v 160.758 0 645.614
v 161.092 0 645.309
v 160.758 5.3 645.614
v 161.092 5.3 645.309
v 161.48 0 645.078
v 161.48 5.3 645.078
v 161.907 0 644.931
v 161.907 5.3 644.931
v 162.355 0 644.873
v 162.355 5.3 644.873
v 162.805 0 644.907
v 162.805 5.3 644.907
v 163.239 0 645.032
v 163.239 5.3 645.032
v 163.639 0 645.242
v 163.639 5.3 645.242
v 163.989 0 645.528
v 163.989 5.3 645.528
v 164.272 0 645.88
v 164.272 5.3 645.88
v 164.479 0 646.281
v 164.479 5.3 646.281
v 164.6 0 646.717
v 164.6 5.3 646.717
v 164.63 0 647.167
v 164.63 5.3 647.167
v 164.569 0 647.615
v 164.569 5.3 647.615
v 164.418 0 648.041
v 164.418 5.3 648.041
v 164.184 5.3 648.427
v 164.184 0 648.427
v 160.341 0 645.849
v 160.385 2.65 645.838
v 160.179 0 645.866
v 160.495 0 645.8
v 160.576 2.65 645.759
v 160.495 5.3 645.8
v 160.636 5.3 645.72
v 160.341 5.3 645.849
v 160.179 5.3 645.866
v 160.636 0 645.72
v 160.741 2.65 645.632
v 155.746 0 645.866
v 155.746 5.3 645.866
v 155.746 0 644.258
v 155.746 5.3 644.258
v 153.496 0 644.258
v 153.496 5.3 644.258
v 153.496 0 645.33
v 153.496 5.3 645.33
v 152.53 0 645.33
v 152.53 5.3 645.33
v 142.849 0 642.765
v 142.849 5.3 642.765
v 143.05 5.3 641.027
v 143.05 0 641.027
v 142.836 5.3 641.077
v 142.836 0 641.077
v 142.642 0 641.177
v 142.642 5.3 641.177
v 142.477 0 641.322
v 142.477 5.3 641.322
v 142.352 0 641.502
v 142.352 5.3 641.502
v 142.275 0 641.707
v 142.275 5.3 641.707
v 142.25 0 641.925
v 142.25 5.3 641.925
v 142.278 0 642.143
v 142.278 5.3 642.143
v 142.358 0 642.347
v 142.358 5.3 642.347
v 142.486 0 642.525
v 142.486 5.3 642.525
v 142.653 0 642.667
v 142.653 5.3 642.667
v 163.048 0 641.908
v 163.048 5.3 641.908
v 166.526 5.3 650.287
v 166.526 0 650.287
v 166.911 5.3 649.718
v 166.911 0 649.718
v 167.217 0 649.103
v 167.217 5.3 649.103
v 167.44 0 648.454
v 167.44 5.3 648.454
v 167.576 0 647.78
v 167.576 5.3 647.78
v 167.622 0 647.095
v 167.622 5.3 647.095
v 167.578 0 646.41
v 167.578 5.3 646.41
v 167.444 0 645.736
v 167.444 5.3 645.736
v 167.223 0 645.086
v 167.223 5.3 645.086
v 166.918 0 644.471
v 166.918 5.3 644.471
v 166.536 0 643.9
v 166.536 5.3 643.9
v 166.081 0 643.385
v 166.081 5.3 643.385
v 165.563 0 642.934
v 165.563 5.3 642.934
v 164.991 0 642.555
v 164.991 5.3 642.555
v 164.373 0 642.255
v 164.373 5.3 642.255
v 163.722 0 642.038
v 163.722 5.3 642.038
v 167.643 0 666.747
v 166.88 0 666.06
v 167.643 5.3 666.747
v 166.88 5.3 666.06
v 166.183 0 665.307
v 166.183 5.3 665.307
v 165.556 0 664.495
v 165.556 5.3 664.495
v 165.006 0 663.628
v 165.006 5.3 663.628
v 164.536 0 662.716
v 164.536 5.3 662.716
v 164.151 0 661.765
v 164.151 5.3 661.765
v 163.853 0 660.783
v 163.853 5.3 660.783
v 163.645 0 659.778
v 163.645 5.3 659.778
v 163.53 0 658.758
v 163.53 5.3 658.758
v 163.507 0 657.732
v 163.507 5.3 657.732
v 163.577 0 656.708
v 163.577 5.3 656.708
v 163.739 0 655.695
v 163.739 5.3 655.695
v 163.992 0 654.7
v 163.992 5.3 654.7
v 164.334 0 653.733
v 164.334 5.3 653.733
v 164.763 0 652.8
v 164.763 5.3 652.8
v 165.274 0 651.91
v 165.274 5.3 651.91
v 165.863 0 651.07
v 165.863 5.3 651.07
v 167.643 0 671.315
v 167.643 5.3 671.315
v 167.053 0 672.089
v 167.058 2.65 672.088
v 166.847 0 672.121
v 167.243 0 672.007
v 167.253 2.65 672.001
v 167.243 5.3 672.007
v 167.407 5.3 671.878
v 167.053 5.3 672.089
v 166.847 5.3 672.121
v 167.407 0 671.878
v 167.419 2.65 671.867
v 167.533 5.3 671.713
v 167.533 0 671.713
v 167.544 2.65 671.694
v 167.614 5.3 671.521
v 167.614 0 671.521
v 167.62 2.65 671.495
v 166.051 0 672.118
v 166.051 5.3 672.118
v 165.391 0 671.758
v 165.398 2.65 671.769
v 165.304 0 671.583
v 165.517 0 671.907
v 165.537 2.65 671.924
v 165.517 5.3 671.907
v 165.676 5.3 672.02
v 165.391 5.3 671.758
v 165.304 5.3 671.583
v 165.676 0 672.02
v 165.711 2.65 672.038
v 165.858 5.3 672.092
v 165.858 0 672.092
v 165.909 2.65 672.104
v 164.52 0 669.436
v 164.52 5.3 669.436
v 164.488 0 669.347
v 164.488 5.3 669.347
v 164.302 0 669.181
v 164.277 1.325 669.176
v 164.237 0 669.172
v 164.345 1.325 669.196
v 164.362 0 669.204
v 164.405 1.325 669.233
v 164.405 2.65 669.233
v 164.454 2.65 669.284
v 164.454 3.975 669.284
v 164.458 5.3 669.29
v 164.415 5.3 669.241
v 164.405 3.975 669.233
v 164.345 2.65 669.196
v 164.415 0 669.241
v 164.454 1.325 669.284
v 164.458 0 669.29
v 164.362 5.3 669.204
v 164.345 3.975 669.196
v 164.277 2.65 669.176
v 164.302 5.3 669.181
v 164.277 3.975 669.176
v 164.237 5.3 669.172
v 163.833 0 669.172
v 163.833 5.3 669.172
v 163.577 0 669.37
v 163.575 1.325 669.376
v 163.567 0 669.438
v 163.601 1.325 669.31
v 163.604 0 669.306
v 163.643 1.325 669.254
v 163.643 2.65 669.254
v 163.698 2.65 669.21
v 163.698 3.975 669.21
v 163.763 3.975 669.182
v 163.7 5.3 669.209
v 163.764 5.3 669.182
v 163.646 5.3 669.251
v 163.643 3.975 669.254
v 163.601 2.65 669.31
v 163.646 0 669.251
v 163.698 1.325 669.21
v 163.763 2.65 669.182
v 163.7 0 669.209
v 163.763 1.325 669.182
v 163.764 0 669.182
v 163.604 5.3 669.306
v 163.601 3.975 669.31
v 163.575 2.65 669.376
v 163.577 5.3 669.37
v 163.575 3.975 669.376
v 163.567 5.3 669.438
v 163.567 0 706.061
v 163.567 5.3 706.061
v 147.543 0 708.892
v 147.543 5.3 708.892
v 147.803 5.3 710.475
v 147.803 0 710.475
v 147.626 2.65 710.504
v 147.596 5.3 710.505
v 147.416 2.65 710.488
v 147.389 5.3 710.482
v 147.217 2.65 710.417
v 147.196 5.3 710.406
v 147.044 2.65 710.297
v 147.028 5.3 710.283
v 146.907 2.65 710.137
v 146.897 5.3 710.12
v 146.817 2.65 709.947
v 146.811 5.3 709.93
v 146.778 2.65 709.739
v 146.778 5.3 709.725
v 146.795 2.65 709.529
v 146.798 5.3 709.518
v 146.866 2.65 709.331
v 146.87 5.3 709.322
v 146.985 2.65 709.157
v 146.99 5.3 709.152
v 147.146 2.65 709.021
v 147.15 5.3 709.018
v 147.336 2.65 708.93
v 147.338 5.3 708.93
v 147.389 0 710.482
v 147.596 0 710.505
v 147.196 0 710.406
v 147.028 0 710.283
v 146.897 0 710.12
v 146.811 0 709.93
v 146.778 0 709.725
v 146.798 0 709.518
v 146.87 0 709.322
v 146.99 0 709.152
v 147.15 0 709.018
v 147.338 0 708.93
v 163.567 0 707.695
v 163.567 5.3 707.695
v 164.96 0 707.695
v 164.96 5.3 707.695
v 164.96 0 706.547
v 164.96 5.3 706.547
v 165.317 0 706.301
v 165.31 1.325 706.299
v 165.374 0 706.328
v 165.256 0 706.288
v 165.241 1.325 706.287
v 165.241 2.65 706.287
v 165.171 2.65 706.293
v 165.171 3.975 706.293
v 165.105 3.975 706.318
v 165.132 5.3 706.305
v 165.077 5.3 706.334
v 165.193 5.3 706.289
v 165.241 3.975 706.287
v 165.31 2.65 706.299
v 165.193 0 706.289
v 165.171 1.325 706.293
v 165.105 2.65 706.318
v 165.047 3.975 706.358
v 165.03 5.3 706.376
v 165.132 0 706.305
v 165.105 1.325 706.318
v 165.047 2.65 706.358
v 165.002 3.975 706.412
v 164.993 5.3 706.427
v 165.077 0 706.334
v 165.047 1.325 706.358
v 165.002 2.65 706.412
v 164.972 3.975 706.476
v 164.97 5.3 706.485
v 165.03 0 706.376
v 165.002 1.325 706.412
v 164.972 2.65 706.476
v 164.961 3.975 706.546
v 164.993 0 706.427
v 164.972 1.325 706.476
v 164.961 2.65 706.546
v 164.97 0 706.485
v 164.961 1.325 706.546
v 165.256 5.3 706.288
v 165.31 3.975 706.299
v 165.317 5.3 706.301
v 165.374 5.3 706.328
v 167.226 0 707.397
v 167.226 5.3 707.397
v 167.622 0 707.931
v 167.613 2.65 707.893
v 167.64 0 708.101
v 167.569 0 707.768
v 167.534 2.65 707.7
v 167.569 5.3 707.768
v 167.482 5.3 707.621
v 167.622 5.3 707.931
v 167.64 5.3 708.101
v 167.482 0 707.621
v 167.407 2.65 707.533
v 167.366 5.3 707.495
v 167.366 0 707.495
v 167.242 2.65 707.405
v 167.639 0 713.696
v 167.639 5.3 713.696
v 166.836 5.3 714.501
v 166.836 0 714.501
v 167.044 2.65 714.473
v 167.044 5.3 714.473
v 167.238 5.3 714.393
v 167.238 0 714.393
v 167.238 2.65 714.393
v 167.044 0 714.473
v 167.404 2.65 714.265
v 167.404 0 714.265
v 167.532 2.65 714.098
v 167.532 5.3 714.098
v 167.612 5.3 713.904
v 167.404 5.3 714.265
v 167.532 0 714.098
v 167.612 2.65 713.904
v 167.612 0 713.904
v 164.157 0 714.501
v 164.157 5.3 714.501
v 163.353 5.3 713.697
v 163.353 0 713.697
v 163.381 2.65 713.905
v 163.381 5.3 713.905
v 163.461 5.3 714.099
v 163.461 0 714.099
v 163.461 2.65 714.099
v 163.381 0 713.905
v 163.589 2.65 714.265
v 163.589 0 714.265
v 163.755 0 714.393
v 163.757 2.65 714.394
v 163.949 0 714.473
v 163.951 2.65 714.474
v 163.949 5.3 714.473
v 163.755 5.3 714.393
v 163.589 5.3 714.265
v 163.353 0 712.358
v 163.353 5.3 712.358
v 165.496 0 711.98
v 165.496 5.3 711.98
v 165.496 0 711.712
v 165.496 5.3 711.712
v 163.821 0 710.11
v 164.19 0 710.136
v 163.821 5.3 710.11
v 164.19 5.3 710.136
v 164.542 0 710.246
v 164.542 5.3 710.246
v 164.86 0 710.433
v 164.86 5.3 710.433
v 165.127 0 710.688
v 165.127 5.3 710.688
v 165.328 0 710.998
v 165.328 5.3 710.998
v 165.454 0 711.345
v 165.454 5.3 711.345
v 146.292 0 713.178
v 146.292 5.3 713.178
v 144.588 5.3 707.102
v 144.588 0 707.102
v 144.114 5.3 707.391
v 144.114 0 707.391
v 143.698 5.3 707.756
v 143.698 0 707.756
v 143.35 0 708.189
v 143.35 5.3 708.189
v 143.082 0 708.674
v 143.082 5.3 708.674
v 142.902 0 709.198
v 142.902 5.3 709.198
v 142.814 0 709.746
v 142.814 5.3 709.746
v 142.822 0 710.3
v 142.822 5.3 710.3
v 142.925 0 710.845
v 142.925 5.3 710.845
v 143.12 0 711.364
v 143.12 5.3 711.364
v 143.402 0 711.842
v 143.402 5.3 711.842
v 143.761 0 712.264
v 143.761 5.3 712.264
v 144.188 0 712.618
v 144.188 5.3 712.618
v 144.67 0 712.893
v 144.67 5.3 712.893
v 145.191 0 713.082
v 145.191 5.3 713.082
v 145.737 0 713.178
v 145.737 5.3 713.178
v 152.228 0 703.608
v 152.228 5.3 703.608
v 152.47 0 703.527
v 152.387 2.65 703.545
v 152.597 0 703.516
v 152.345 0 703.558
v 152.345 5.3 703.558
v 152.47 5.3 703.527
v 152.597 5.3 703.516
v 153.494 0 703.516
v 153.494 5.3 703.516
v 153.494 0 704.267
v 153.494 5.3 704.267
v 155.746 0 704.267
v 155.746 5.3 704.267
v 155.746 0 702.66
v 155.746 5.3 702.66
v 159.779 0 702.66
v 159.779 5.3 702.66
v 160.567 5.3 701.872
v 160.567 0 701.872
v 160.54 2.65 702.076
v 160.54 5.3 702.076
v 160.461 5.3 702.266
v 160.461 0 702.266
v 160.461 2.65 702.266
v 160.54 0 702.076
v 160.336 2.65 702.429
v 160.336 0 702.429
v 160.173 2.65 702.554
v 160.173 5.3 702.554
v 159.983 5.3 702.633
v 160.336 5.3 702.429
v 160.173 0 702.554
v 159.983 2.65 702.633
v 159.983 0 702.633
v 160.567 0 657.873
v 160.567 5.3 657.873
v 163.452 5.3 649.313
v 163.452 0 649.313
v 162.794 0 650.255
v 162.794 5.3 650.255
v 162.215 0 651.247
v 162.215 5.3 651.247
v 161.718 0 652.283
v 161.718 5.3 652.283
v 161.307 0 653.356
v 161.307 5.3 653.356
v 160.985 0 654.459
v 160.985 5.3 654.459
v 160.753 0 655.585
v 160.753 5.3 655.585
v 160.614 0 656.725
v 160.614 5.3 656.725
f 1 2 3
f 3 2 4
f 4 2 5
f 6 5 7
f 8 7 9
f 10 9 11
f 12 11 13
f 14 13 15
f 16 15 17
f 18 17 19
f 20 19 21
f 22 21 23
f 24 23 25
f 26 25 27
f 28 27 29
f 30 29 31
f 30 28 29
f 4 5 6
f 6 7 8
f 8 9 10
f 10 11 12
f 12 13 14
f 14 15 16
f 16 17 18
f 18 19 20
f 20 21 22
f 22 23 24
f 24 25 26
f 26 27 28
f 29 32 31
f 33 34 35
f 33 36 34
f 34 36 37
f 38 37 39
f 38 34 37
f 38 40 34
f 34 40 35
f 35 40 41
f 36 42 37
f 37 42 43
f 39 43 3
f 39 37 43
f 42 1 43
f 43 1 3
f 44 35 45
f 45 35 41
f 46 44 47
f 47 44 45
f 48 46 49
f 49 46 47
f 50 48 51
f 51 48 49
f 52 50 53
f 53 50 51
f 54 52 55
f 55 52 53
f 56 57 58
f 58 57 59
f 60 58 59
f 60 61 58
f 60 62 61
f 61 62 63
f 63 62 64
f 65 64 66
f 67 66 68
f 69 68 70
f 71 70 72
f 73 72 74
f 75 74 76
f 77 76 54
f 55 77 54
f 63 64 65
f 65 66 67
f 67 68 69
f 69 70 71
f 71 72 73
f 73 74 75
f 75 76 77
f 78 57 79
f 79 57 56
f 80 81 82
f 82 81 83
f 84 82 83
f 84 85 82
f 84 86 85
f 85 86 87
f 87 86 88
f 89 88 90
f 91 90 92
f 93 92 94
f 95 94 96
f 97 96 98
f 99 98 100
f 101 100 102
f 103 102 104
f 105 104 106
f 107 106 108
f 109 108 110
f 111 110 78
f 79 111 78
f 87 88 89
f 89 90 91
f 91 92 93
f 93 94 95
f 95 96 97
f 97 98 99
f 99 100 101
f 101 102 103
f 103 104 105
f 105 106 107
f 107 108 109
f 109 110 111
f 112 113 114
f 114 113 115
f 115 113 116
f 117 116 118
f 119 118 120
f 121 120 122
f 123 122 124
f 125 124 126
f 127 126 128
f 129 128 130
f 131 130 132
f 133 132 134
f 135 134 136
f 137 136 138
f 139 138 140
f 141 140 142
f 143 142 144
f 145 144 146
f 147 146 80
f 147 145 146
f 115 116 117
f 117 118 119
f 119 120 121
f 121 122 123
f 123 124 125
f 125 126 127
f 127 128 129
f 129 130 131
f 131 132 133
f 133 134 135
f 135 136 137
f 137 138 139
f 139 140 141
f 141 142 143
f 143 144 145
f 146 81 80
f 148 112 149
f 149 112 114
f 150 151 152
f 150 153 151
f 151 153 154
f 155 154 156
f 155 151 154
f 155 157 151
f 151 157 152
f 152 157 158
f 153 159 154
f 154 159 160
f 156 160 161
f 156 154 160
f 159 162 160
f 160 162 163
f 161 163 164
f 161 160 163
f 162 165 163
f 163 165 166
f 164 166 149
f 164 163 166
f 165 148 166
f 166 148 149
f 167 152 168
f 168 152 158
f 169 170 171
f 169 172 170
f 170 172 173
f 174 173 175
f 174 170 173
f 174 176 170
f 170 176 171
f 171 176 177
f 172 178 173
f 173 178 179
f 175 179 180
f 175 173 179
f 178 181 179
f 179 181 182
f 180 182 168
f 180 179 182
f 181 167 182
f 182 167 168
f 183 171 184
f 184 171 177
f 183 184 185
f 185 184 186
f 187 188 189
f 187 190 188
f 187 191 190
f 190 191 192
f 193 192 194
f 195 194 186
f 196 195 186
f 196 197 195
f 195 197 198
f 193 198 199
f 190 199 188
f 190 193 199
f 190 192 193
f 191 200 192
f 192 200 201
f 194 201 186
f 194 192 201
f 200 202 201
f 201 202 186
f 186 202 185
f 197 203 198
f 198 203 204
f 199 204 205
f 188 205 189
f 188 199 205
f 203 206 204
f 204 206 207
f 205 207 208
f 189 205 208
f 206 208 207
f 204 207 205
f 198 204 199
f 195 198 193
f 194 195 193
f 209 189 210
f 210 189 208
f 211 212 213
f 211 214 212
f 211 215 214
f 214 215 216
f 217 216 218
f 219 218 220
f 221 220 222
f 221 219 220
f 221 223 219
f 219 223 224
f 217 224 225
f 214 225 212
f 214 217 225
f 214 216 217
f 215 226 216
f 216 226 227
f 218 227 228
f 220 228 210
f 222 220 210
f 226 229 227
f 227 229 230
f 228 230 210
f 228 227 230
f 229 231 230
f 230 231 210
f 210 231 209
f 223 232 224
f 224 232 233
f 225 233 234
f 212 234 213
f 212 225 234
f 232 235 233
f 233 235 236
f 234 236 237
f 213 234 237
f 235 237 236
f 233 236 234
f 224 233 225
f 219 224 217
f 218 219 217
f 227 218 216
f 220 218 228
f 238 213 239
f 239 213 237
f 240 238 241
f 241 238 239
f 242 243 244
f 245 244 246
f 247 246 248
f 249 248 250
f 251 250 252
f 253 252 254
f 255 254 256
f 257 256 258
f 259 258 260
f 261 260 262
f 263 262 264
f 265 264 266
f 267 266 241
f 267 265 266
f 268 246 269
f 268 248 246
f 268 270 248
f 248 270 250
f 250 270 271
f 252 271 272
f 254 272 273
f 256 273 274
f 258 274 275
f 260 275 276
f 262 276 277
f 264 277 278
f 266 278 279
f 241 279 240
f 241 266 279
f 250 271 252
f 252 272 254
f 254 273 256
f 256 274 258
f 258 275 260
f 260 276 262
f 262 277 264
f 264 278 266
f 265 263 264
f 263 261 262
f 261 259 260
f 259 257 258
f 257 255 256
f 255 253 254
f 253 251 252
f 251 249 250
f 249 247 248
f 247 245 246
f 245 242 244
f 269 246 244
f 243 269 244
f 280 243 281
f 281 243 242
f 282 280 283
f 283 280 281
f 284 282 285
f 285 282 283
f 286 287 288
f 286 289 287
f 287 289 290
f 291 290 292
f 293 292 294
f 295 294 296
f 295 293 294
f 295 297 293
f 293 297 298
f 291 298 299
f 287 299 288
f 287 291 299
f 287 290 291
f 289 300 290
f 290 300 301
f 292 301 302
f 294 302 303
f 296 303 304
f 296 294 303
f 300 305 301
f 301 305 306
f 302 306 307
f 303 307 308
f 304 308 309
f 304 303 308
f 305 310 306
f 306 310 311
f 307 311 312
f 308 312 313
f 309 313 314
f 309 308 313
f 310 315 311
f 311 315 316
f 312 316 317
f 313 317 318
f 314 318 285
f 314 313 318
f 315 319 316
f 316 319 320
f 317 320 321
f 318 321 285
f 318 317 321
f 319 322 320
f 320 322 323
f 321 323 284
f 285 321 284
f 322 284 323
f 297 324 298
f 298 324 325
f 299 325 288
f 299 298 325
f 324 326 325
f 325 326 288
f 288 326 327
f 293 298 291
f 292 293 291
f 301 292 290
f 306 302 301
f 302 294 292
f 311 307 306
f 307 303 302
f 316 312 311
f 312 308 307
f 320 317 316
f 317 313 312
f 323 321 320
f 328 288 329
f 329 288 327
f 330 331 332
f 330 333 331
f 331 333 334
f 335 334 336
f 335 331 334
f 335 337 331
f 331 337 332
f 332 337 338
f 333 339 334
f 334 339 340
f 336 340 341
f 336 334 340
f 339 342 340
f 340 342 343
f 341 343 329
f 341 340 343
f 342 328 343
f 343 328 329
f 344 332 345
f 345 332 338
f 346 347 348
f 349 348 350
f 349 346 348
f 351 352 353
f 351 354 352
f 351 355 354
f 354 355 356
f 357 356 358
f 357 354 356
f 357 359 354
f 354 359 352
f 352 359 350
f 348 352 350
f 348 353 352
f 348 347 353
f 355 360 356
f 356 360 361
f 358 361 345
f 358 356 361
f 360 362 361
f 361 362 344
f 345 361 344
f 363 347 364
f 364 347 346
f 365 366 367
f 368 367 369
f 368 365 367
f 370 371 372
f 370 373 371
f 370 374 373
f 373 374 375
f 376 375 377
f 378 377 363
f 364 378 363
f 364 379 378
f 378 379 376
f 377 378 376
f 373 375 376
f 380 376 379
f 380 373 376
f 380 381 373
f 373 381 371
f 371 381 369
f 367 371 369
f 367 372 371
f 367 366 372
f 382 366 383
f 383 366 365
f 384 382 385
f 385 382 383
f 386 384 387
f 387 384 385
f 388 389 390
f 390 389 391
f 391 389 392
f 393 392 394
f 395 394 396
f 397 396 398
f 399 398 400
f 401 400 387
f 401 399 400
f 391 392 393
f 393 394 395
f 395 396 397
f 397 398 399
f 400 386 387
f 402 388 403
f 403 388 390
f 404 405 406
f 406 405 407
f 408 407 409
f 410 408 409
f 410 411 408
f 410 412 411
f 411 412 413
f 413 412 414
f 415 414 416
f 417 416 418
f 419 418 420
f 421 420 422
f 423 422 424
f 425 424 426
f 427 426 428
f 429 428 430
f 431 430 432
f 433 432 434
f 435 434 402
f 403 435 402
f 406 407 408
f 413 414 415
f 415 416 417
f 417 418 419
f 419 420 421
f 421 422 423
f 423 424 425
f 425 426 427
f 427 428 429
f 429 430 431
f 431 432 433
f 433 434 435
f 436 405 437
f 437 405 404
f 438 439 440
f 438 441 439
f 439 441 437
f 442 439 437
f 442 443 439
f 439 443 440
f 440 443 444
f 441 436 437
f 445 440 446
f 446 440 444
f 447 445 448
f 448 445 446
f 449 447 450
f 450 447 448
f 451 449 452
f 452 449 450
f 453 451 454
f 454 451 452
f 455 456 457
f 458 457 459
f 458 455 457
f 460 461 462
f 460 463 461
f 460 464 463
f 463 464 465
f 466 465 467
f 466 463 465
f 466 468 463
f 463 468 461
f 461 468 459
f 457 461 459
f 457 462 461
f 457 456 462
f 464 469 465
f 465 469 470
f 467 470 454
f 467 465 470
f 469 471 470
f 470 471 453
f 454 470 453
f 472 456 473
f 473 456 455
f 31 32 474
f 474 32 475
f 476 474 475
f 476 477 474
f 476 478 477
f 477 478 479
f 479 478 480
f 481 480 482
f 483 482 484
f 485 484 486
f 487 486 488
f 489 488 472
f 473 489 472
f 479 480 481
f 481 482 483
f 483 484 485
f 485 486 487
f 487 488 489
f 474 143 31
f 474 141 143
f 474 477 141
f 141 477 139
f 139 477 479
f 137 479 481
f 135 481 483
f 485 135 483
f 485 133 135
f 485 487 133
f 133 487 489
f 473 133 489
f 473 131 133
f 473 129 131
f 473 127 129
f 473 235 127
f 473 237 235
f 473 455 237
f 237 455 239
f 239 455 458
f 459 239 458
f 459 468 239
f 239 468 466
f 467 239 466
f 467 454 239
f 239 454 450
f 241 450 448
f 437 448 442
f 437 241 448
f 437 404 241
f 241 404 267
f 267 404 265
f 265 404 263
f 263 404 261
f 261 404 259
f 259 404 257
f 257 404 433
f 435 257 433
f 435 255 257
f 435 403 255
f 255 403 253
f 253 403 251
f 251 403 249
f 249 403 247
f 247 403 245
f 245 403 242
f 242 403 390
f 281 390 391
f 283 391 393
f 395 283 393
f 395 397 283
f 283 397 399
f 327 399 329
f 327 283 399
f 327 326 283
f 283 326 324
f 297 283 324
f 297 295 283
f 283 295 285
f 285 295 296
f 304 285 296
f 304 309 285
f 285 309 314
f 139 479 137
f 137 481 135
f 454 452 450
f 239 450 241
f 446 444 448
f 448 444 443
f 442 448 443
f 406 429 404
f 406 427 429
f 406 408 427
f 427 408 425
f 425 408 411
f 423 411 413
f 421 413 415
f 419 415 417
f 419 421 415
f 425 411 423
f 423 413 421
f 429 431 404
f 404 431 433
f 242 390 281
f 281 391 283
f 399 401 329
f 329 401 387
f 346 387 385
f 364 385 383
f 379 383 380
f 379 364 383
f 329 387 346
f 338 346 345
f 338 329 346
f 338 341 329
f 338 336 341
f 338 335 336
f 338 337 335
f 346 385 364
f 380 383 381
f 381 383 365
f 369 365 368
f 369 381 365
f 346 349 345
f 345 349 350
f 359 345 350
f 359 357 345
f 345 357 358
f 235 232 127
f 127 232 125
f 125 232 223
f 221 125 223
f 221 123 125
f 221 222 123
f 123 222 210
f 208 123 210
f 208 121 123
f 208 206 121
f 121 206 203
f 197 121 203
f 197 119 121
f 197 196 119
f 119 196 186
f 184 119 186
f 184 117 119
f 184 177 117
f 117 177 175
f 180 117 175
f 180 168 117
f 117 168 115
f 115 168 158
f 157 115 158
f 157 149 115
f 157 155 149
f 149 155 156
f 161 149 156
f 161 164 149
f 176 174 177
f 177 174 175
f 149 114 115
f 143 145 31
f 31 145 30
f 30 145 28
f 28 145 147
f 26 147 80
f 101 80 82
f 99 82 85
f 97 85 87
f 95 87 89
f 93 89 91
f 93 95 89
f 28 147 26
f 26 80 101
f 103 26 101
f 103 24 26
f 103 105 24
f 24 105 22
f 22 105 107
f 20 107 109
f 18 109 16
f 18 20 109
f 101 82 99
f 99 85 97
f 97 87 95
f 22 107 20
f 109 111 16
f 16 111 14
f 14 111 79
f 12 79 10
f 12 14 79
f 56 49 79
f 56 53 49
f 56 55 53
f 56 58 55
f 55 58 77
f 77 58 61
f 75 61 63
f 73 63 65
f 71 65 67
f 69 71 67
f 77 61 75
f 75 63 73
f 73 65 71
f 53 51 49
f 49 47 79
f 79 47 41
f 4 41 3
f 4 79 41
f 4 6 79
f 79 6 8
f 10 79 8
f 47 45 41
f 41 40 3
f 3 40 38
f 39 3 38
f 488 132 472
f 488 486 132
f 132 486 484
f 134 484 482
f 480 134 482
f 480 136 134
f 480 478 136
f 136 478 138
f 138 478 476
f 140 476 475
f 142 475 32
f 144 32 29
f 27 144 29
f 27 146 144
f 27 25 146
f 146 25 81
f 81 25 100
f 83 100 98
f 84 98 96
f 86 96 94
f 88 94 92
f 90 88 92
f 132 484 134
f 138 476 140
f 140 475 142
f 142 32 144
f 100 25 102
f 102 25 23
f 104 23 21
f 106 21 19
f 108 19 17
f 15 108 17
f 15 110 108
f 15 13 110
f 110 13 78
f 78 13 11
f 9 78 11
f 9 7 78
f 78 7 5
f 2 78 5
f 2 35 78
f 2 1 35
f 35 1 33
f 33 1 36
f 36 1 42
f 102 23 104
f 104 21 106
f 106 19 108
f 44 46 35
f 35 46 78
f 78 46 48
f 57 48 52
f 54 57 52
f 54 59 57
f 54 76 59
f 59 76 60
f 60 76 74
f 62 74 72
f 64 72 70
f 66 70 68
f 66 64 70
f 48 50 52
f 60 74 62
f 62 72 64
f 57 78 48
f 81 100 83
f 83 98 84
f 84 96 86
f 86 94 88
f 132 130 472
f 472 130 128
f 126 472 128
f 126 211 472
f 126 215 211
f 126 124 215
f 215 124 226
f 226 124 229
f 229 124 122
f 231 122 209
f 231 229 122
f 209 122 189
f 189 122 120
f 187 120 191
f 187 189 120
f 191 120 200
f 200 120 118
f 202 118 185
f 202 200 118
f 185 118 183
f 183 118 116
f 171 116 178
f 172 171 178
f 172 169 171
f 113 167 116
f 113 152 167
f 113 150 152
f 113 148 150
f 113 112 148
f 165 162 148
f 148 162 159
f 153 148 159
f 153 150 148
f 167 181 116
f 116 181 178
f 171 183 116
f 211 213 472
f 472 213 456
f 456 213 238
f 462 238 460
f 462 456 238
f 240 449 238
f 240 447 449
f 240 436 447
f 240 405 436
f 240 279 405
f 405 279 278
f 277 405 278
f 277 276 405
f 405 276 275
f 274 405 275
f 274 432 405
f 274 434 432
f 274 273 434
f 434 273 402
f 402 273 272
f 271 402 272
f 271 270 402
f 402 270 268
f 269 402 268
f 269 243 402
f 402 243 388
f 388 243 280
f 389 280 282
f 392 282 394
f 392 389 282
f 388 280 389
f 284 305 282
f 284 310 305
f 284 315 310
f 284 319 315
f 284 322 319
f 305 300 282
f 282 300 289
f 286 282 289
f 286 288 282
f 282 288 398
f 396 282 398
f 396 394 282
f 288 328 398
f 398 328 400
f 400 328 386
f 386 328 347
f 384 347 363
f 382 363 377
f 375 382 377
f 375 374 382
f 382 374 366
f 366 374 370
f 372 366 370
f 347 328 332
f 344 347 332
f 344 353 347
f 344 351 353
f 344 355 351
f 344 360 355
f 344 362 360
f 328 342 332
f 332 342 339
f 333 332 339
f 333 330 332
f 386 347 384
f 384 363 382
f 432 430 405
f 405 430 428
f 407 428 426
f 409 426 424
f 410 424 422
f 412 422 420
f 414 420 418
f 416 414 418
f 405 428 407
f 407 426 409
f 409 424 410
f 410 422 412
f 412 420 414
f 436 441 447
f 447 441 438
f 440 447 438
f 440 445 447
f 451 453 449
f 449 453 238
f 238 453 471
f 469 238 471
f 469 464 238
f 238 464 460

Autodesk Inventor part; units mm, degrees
ref_plane "YZ Plane" through (0, 0, 0) normal (1, 0, 0) x (0, 1, 0)
ref_plane "XZ Plane" through (0, 0, 0) normal (0, 1, 0) x (-1, 0, 0)
ref_plane "XY Plane" through (0, 0, 0) normal (0, 0, 1) x (1, 0, 0)
sketch "Sketch1" plane through (0, 0, 0) normal (0, 1, 0) x (-1, 0, 0)
  arc A0 (-159.7794, 702.6597) -> (-160.5669, 701.8721) centre (-159.7794, 701.8721) ccw
  line L0 (-159.7794, 702.6597) -> (-155.7462, 702.6597)
  line L1 (-155.7462, 702.6597) -> (-155.7462, 704.2667)
  line L2 (-155.7462, 704.2667) -> (-153.4941, 704.2667)
  line L3 (-153.4941, 704.2667) -> (-153.4941, 703.5159)
  line L4 (-153.4941, 703.5159) -> (-152.5972, 703.5159)
  arc A1 (-164.1836, 648.4268) -> (-160.5669, 657.8731) centre (-174.7114, 657.8731) ccw
  line L5 (-160.5669, 657.8731) -> (-160.5669, 701.8721)
  arc A2 (-160.1794, 645.8656) -> (-160.7583, 645.6139) centre (-160.1783, 645.0714) ccw
  arc A3 (-164.1836, 648.4268) -> (-160.7583, 645.6139) centre (-162.4137, 647.0901) ccw
  line L6 (-160.1794, 645.8656) -> (-155.7462, 645.8656)
  line L7 (-155.7462, 645.8656) -> (-155.7462, 644.2582)
  line L8 (-155.7462, 644.2582) -> (-153.4959, 644.2582)
  line L9 (-153.4959, 644.2582) -> (-153.4959, 645.3298)
  line L10 (-153.4959, 645.3298) -> (-152.5301, 645.3298)
  line L11 (-152.5301, 645.3298) -> (-142.8493, 642.7649)
  arc A4 (-143.0499, 641.0266) -> (-142.8493, 642.7649) centre (-143.1468, 641.9185) ccw
  line L12 (-163.0475, 641.9081) -> (-143.0499, 641.0266)
  arc A5 (-166.5264, 650.2868) -> (-163.0475, 641.9081) centre (-162.4021, 647.0877) ccw
  arc A6 (-166.5264, 650.2868) -> (-167.6429, 666.7468) centre (-174.8334, 657.9912) ccw
  line L13 (-167.6429, 666.7468) -> (-167.6429, 671.3153)
  arc A7 (-166.8471, 672.1213) -> (-167.6429, 671.3153) centre (-166.8257, 671.3043) ccw
  line L14 (-166.8471, 672.1213) -> (-166.0512, 672.1176)
  arc A8 (-165.304, 671.5825) -> (-166.0512, 672.1176) centre (-166.0579, 671.319) ccw
  line L15 (-165.304, 671.5825) -> (-164.5204, 669.4361)
  line L16 (-164.5204, 669.4361) -> (-164.4882, 669.3468)
  arc A9 (-164.4882, 669.3468) -> (-164.2374, 669.1723) centre (-164.2343, 669.4443) ccw
  line L17 (-164.2374, 669.1723) -> (-163.8302, 669.1723)
  arc A10 (-163.8326, 669.1723) -> (-163.5671, 669.4384) centre (-163.8364, 669.4416) ccw
  line L18 (-163.5671, 669.4384) -> (-163.5671, 706.0242)
  line L19 (-163.5671, 706.0242) -> (-163.5671, 706.0613)
  line L20 (-163.5671, 706.0613) -> (-147.5434, 708.8923)
  arc A11 (-147.5434, 708.8923) -> (-147.8025, 710.4755) centre (-147.5845, 709.6983) ccw
  line L21 (-147.8025, 710.4755) -> (-163.5671, 707.6952)
  line L22 (-163.5671, 707.6952) -> (-164.9603, 707.6952)
  line L23 (-164.9603, 707.6952) -> (-164.9605, 706.5472)
  arc A12 (-165.374, 706.3282) -> (-164.9605, 706.5472) centre (-165.23, 706.5562) ccw
  line L24 (-165.374, 706.3282) -> (-167.226, 707.3966)
  arc A13 (-167.6397, 708.1008) -> (-167.226, 707.3966) centre (-166.8384, 708.0979) ccw
  line L25 (-167.6397, 708.1008) -> (-167.6393, 713.6964)
  arc A14 (-166.8357, 714.5011) -> (-167.6393, 713.6964) centre (-166.8345, 713.6963) ccw
  line L26 (-166.8357, 714.5011) -> (-164.1567, 714.5011)
  arc A15 (-163.353, 713.6974) -> (-164.1567, 714.5011) centre (-164.1583, 713.6958) ccw
  line L27 (-163.353, 713.6974) -> (-163.353, 712.3579)
  line L28 (-163.353, 712.3579) -> (-165.4962, 711.98)
  line L29 (-165.4962, 711.98) -> (-165.4962, 711.7118)
  arc A16 (-165.4962, 711.7118) -> (-163.8213, 710.1096) centre (-163.8924, 711.7118) ccw
  line L30 (-163.8213, 710.1096) -> (-146.2918, 713.1784)
  arc A17 (-144.5878, 707.1017) -> (-146.2918, 713.1784) centre (-146.018, 709.9779) ccw
  line L31 (-144.5878, 707.1017) -> (-152.2275, 703.608)
  arc A18 (-152.5972, 703.5159) -> (-152.2275, 703.608) centre (-152.6033, 704.3289) ccw
  point P0 (-160.5669, 683.588)
  dimension "d1" = 90
  dimension "d2" = 43.999
  dimension "d3" = 3.0002
extrude "Extrusion1" add sketch "Sketch1" along normal blind 5.3
properties part number "raspDinClipmmv1"
